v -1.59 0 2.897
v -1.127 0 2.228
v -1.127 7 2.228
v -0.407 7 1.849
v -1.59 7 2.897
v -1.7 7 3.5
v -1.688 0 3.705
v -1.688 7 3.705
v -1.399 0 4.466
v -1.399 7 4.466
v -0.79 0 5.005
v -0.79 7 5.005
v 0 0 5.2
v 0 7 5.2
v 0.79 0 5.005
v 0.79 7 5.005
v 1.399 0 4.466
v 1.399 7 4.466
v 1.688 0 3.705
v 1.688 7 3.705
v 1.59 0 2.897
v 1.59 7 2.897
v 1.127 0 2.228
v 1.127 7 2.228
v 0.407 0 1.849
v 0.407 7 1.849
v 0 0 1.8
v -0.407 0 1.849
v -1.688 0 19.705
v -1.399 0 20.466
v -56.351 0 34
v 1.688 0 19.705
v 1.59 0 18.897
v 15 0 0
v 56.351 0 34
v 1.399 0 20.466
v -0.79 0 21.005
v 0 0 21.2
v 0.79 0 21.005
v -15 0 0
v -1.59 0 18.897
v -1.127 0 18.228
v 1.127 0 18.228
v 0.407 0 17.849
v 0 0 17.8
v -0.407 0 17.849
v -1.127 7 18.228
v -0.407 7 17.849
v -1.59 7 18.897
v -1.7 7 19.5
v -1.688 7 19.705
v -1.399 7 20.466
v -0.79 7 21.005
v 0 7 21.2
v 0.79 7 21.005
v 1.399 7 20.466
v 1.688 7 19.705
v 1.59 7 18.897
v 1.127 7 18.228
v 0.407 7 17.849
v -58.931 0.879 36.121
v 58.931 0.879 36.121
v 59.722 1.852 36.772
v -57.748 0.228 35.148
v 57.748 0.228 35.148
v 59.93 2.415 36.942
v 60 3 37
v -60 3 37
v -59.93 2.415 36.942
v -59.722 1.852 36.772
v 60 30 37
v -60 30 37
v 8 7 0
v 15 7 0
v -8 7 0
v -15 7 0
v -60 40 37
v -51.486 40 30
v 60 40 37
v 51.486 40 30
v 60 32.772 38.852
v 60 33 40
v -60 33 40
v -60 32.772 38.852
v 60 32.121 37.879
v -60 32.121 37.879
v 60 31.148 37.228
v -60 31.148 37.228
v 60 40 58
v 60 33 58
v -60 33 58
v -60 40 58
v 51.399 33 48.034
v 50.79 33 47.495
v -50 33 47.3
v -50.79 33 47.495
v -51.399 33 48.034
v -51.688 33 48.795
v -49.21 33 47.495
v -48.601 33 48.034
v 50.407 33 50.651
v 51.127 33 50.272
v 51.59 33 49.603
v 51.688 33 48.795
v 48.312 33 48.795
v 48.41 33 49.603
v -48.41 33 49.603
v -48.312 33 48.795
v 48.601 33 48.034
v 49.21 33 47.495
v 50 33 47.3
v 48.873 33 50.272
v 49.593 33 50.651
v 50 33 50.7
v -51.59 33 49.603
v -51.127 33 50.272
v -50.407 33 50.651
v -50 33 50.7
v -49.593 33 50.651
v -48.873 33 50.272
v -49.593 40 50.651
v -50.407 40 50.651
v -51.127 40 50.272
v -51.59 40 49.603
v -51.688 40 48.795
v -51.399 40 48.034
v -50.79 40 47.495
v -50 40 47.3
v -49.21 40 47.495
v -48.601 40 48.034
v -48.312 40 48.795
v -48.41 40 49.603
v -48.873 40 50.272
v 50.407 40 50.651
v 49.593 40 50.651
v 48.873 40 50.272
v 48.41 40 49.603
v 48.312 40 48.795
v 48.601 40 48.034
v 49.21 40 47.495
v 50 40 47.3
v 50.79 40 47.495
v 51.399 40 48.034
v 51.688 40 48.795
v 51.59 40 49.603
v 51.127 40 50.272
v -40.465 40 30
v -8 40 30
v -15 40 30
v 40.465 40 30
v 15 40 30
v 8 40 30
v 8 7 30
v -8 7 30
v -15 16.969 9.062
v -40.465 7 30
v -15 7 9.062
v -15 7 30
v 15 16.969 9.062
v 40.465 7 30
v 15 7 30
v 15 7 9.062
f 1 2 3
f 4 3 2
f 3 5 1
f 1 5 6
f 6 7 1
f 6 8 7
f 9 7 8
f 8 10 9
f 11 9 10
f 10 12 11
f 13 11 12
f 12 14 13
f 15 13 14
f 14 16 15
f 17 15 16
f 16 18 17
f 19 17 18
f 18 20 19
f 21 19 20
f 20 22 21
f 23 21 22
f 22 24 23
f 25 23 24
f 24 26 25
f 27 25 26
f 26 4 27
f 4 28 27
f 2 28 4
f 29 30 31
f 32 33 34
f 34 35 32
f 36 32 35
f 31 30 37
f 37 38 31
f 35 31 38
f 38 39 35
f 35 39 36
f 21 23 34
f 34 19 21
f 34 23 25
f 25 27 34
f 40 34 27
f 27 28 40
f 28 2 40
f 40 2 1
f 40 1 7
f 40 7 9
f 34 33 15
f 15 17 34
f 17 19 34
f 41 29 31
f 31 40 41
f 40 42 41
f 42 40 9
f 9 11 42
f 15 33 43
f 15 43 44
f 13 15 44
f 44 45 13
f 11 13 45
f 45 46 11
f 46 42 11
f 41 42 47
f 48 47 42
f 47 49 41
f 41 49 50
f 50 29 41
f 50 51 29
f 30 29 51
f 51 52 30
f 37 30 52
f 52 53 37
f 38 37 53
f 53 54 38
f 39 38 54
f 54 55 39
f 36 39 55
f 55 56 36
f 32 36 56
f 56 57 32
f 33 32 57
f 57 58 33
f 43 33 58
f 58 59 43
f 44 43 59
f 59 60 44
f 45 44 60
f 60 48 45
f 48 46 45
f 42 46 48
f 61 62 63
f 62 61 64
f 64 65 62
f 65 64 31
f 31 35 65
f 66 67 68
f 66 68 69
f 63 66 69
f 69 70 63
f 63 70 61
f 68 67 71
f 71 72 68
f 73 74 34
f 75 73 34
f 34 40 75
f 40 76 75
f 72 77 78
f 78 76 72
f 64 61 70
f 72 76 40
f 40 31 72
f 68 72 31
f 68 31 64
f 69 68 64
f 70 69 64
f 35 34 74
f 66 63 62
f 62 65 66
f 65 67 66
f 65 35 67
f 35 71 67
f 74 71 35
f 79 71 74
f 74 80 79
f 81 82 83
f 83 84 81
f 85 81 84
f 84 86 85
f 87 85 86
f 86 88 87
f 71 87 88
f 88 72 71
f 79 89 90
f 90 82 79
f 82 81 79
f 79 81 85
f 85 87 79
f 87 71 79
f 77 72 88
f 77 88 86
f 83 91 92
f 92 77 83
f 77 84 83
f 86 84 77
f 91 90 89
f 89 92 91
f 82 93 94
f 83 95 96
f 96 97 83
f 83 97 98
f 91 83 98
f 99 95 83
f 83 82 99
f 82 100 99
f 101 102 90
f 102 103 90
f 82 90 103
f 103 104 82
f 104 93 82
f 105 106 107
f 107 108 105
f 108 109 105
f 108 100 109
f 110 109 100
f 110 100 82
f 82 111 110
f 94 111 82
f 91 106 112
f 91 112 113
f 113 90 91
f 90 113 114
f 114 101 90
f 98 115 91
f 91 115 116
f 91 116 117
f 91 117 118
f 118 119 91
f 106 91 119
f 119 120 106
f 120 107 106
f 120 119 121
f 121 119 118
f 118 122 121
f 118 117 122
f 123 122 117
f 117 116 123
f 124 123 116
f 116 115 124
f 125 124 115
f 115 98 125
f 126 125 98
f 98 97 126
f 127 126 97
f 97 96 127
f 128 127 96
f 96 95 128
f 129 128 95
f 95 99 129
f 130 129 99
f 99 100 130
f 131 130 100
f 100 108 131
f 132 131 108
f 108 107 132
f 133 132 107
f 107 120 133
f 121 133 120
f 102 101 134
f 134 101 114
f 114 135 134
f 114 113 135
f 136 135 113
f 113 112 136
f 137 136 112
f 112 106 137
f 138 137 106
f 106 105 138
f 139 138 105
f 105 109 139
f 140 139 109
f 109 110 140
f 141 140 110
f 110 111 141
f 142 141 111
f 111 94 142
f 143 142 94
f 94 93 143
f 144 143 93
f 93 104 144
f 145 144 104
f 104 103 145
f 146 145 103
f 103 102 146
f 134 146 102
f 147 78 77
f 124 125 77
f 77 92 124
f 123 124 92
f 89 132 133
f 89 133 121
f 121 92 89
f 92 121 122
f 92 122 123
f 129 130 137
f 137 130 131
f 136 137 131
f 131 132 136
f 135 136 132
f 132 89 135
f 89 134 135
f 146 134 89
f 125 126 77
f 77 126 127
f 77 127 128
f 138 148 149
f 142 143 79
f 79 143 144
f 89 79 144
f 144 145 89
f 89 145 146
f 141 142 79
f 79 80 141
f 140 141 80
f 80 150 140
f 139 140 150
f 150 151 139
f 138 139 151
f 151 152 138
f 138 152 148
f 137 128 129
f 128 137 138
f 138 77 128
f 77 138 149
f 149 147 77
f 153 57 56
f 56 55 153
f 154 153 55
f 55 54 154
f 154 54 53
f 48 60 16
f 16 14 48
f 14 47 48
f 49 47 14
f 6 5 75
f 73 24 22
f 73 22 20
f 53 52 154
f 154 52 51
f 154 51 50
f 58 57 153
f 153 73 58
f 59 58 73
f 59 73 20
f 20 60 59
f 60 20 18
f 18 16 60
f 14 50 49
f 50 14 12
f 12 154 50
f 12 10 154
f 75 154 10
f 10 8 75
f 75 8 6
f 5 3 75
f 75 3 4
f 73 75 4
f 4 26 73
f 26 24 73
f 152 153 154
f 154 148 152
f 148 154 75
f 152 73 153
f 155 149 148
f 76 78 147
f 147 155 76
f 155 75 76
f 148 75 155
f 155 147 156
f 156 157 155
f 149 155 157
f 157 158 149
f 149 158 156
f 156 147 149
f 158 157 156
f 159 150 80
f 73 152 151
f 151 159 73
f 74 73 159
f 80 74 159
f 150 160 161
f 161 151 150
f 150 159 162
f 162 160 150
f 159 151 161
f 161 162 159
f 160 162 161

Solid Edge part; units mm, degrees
sketch "Sketch1" plane through (0, 0, 0) normal (0, -1, 0) x (1, 0, 0)
  line L0 (-60, 37) -> (-15, 0)
  line L1 (-15, 0) -> (15, 0)
  line L2 (15, 0) -> (60, 37)
  line L3 (60, 37) -> (-60, 37)
  dimension "D1" = 30
  dimension "D2" = 120
  dimension "D3" = 37
extrude "Protrusion1" add sketch "Sketch1" against normal blind 40
sketch "Sketch2" plane through (0, 40, 18.5) normal (0, 1, 0) x (-1, 0, 0)
  line L0 (-8, -18.5) -> (8, -18.5)
  line L1 (8, -18.5) -> (8, 11.5)
  line L2 (8, 11.5) -> (-8, 11.5)
  line L3 (-8, 11.5) -> (-8, -18.5)
  line L4 (-40.4647, 11.5) -> (-15, -9.4376)
  line L5 (-15, -9.4376) -> (-15, 11.5)
  line L6 (-15, 11.5) -> (-40.4647, 11.5)
  line L7 (40.4647, 11.5) -> (15, -9.4376)
  line L8 (15, -9.4376) -> (15, 11.5)
  line L9 (15, 11.5) -> (40.4647, 11.5)
  dimension "D1" = 16
  dimension "D2" = 10.5
  dimension "D3" = 16
  dimension "D4" = 7
  dimension "D5" = 7
  dimension "D6" = 7
extrude "ExtrudedCutout_1" cut sketch "Sketch2" against normal blind 33
sketch "Sketch3" plane through (0, 7, 15) normal (0, 1, 0) x (-1, 0, 0)
  circle A0 centre (0, -11.5) radius 1.7
  circle A1 centre (0, 4.5) radius 1.7
  dimension "D1" = 10.5
  dimension "D2" = 16
  dimension "D3" = 3.4
extrude "Cutout1" cut sketch "Sketch3" against normal through all
sketch "Sketch4" plane through (0, 0, 0) normal (1, 0, 0) x (0, 1, 0)
  line L0 (7, 0) -> (40, 30)
extrude "Cutout2" cut sketch "Sketch4" against normal through all and the other way through all material side at (0, 23.5336, 14.963)
sketch "Sketch5" plane through (0, 0, 0) normal (1, 0, 0) x (0, 1, 0)
  line L0 (40, 37) -> (40, 58)
  line L1 (40, 58) -> (33, 58)
  line L2 (33, 58) -> (33, 40)
  arc A0 (30, 37) -> (33, 40) centre (30, 40) ccw
  line L3 (40, 37) -> (30, 37)
  dimension "D1" = 7
  dimension "D2" = 3
  dimension "D3" = 21
extrude "ExtrudedProtrusion_3" add sketch "Sketch5" along normal mid plane 120
fillet "Round_1" radius 3 1 edges at (0, 0, 37)
sketch "Sketch6" plane through (0, 0, 0) normal (0, -1, 0) x (1, 0, 0)
  circle A0 centre (-50, 49) radius 1.7
  circle A1 centre (50, 49) radius 1.7
  dimension "D1" = 3.4
  dimension "D2" = 50
  dimension "D3" = 12
extrude "Cutout3" cut sketch "Sketch6" against normal through all
properties material "ABS Plastic, medium impact"
